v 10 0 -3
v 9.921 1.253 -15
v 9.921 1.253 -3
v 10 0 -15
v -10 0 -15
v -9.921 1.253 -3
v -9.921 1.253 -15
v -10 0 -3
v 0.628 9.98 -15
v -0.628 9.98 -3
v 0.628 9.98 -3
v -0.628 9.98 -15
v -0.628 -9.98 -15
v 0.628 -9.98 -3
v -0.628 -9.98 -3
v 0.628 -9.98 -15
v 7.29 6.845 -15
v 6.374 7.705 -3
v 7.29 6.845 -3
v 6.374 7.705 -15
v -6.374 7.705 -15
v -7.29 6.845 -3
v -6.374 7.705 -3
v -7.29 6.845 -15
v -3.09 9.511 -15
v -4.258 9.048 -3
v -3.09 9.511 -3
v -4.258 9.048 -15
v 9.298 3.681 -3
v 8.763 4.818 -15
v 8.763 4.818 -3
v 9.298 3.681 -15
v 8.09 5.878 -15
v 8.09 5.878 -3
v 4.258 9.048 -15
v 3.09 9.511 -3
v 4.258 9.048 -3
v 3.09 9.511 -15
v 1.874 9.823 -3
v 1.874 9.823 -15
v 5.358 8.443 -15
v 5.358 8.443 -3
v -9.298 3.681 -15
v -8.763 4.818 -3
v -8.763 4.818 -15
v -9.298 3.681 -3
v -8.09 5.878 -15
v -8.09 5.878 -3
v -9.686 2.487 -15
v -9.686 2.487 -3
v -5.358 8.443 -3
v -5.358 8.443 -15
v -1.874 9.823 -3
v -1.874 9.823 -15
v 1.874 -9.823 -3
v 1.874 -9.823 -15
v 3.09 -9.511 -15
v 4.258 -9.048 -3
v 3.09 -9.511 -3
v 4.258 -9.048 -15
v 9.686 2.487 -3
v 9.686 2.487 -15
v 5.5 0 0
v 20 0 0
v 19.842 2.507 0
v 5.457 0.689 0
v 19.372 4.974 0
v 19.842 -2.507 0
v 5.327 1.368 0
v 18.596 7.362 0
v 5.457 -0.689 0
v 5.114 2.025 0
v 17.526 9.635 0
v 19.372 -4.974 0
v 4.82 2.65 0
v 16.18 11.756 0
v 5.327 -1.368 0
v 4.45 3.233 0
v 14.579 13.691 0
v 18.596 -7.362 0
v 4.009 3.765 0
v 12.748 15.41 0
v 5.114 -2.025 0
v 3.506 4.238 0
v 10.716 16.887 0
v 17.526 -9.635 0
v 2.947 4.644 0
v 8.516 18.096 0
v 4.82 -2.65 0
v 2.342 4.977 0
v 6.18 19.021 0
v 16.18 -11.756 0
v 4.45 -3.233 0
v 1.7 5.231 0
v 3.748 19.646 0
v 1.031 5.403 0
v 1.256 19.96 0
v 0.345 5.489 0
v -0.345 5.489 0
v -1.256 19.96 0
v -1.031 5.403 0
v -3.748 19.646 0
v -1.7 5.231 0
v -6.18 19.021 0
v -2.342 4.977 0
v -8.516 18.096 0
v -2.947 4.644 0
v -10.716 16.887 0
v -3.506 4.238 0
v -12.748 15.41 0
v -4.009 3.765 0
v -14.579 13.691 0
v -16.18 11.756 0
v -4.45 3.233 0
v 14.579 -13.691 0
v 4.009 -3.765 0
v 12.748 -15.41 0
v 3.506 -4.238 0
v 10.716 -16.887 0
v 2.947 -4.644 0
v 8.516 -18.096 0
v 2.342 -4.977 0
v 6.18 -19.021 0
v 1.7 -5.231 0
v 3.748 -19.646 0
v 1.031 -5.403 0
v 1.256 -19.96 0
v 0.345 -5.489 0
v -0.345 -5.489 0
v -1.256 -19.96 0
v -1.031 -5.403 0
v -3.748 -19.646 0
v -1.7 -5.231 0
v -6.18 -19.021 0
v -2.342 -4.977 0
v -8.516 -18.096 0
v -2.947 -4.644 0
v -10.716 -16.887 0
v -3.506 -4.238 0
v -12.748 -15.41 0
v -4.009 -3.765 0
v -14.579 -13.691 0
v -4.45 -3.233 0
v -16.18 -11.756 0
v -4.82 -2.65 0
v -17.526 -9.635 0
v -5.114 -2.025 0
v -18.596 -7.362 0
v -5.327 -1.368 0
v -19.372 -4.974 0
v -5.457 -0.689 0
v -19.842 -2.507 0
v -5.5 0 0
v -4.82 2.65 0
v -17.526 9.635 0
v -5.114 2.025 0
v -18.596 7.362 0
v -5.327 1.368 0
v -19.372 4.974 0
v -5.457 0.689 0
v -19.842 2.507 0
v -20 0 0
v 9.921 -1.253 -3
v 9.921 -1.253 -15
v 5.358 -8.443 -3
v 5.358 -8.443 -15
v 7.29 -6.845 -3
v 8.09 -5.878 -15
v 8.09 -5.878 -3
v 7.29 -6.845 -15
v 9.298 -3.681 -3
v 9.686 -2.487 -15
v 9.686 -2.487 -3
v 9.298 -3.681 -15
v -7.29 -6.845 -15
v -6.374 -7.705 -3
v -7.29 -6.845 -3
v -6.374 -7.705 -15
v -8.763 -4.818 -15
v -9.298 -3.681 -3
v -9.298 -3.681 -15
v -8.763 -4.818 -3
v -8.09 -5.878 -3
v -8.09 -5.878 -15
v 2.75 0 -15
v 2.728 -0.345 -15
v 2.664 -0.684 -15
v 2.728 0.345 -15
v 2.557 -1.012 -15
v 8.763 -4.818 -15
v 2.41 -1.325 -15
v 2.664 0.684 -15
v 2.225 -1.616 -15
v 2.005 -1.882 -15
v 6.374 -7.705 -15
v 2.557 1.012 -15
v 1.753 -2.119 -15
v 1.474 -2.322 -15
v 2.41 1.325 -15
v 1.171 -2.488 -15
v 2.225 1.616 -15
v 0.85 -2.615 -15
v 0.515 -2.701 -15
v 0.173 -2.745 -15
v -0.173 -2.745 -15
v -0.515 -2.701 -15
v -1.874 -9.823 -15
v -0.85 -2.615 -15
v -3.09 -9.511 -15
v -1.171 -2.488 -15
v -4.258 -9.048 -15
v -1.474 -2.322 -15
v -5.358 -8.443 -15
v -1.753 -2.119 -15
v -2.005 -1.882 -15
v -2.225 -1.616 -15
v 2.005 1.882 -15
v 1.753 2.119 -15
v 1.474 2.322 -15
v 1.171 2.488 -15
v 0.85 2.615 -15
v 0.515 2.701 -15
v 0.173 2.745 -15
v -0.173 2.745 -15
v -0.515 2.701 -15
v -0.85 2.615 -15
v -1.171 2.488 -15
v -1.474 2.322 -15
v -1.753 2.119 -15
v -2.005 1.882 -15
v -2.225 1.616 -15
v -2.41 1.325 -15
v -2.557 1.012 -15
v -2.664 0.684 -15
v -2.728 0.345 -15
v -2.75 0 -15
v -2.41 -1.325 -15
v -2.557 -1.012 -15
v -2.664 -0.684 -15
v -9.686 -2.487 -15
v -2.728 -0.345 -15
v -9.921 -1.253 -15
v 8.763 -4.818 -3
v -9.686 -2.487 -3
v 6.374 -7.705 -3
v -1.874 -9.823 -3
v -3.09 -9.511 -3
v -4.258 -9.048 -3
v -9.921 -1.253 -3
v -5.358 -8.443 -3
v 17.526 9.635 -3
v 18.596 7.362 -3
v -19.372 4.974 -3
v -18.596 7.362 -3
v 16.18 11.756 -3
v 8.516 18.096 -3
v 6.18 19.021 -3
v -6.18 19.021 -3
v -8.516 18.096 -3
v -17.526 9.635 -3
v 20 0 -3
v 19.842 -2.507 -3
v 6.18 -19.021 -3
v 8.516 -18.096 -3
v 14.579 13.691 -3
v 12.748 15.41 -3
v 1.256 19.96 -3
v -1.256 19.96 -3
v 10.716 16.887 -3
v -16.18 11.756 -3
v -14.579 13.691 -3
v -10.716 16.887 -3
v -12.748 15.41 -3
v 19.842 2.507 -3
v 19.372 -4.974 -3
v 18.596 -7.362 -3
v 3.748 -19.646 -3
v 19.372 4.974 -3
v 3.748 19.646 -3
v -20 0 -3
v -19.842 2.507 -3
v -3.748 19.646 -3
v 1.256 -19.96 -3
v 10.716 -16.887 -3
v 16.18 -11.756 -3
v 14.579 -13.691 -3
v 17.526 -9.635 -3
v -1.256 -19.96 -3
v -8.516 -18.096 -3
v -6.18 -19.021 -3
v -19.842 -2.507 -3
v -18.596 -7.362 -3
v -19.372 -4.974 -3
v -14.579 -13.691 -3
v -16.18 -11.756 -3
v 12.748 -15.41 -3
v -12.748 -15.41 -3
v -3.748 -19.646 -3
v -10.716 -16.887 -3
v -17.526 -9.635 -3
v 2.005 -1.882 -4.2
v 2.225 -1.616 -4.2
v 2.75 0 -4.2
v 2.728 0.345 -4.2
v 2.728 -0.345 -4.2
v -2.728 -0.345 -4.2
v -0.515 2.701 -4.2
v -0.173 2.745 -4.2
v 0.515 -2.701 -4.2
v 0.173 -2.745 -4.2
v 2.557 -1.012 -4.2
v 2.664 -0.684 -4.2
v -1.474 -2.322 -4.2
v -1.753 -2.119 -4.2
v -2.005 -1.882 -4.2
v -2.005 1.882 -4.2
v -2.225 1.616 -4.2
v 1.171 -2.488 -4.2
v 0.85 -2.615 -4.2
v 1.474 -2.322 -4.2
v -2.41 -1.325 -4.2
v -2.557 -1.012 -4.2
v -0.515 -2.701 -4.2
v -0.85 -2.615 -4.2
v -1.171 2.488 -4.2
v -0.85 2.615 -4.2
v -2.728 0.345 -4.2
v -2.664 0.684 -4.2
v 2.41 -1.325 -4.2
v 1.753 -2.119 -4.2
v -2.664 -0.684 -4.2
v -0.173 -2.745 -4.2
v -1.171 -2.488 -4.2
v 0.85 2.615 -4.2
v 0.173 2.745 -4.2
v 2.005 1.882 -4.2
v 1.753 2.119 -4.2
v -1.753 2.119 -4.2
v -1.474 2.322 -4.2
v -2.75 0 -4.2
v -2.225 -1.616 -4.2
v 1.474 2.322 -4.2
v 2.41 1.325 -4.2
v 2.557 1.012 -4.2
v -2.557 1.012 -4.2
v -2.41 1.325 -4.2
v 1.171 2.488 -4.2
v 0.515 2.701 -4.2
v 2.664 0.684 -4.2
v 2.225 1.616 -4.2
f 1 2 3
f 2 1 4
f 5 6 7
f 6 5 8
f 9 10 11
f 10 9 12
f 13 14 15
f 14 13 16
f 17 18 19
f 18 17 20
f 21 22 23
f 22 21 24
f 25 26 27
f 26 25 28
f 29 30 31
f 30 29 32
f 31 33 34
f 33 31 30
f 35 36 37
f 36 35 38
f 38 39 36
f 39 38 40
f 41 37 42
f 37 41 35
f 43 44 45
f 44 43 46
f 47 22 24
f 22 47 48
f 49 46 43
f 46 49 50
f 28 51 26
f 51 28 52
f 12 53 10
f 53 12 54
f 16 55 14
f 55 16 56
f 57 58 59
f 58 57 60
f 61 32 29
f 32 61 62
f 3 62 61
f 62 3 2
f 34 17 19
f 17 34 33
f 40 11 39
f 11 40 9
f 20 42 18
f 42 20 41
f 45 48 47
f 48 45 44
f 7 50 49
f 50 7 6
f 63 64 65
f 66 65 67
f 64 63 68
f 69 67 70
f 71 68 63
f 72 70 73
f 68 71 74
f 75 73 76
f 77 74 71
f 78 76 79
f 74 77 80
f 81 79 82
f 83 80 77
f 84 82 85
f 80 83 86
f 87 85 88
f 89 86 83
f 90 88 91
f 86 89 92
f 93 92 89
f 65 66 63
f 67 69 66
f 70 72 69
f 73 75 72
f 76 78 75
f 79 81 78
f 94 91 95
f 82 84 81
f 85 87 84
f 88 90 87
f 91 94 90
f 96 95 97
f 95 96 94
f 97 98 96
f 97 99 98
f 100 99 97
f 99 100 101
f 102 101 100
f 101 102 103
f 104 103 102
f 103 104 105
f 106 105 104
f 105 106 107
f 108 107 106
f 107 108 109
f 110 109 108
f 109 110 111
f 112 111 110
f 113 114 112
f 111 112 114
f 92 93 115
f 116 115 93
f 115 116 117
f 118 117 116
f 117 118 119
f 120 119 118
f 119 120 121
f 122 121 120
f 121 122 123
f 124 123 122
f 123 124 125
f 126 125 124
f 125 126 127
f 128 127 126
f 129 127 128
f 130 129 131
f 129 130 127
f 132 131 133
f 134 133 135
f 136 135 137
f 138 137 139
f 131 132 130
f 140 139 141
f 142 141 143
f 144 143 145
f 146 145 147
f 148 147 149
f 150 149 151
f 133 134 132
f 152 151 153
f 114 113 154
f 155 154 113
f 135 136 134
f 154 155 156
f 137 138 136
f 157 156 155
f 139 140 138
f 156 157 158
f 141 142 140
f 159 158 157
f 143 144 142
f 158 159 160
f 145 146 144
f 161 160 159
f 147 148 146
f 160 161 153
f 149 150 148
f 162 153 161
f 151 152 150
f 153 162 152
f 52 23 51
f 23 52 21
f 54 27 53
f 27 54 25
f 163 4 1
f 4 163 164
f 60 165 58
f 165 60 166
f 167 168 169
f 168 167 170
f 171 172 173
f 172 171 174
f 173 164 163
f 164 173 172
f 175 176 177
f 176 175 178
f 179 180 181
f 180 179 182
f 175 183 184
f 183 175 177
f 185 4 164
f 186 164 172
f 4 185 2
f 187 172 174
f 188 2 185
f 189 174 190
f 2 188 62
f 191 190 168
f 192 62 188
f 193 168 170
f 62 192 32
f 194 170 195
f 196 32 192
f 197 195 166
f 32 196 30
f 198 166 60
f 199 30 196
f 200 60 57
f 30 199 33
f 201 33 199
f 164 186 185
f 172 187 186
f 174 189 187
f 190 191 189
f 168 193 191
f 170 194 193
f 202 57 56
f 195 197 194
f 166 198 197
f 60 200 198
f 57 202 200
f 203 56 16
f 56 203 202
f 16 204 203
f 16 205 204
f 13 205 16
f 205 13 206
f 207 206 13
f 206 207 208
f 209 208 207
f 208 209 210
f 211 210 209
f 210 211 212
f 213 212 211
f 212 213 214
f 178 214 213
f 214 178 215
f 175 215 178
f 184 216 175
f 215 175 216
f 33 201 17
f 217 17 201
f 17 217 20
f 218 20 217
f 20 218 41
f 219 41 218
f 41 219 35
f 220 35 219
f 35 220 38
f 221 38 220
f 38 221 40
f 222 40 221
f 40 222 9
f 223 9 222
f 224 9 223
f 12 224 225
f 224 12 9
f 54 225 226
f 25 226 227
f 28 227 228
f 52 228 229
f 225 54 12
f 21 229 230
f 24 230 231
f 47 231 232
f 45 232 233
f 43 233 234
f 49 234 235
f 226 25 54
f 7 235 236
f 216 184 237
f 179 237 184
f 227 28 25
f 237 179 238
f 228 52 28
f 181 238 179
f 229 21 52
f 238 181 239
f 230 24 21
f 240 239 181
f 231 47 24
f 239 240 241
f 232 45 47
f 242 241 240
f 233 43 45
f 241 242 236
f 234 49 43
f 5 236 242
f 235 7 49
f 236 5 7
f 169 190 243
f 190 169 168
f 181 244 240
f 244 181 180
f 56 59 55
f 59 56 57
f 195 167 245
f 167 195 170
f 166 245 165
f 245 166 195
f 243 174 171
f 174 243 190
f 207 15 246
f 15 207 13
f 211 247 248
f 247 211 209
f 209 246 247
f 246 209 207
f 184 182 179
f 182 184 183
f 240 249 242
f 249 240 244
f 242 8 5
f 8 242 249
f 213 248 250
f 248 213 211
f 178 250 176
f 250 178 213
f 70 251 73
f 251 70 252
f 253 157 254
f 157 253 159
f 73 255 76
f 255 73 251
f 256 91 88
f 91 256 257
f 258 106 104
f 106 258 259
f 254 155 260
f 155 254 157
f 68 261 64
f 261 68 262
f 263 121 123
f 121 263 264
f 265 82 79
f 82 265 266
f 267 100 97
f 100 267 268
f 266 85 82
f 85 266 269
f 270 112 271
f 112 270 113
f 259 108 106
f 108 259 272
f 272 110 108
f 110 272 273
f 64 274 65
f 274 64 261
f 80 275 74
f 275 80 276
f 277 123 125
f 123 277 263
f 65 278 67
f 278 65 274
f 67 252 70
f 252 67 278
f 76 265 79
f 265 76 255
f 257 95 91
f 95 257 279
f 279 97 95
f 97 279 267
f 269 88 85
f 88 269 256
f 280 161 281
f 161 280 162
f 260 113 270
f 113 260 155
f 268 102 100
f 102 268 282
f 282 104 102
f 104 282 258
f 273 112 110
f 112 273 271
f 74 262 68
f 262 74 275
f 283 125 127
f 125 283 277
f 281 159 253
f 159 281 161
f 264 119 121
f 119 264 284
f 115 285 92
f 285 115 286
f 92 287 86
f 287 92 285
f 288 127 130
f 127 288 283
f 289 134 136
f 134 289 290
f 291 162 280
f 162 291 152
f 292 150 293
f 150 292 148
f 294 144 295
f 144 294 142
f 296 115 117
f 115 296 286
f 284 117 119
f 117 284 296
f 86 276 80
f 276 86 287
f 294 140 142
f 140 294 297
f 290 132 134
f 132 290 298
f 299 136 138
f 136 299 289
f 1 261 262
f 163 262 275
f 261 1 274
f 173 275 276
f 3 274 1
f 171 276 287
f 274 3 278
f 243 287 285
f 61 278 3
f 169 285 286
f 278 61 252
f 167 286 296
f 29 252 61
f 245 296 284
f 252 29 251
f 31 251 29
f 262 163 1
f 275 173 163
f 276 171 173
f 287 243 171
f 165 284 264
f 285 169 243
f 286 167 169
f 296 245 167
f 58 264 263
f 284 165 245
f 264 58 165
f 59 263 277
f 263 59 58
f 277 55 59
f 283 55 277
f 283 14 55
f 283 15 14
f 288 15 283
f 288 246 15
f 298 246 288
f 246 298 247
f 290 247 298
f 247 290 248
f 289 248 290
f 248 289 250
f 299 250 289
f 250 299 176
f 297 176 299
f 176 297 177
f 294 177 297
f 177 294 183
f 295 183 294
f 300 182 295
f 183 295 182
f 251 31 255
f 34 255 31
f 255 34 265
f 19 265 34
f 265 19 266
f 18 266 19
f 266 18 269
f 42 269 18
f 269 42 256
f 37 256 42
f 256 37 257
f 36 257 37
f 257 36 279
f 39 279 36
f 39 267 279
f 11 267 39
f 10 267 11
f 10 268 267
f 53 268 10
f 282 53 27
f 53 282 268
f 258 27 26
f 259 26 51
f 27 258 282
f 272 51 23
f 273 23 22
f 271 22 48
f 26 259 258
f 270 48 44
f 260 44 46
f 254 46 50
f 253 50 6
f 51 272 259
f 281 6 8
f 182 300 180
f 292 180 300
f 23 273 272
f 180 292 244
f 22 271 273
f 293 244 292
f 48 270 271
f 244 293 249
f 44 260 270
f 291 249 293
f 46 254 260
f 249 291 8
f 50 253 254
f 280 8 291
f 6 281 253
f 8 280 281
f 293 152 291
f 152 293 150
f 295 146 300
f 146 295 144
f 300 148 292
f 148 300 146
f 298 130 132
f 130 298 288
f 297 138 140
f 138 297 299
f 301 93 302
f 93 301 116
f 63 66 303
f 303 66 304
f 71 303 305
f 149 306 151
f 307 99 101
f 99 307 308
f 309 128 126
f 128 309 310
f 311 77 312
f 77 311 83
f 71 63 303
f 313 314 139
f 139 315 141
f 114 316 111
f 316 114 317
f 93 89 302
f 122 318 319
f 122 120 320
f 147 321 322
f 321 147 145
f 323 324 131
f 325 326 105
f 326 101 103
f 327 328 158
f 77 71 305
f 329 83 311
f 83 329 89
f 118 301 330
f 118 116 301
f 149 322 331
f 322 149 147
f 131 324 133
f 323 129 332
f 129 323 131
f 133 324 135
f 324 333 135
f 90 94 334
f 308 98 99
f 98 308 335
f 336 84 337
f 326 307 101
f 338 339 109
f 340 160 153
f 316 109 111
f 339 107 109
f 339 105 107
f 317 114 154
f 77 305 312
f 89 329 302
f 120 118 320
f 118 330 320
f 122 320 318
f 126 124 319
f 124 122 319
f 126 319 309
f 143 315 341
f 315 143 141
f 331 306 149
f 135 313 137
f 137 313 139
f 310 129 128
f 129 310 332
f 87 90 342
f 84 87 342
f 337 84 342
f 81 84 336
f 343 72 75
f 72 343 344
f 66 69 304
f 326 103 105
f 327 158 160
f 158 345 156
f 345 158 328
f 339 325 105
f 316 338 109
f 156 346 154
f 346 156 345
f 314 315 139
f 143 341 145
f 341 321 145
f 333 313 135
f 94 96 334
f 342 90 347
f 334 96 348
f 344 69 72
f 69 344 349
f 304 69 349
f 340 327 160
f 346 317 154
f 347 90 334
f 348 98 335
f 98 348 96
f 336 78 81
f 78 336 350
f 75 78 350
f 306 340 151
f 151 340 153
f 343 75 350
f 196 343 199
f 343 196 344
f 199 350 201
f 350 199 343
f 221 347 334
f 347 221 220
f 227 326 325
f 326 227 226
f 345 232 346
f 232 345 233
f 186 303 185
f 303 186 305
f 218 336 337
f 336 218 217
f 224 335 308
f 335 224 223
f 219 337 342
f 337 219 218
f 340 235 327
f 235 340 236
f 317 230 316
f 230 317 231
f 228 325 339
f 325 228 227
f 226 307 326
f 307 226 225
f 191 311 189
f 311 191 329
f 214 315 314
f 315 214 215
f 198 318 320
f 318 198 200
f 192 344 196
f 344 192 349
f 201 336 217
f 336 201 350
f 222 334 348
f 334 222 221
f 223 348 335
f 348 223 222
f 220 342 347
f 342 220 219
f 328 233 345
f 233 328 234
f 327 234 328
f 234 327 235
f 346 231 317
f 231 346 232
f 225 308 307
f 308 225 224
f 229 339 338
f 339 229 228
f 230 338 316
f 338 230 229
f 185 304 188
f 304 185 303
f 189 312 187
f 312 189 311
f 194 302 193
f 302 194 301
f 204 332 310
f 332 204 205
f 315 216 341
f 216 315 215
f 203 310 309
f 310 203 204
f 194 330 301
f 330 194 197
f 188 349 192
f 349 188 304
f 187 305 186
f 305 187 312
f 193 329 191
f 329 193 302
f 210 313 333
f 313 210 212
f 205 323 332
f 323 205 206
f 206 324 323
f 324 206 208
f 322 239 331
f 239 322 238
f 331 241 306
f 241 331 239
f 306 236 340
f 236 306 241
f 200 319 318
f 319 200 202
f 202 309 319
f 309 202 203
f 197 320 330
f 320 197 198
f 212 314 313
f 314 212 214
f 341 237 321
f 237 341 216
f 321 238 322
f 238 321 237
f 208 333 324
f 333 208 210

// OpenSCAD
$fn = 50;


difference() {
	union() {
		translate(v = [0, 0, -15.0000000000]) {
			cylinder(h = 15, r = 10.0000000000);
		}
		translate(v = [0, 0, -3.0000000000]) {
			cylinder(h = 3, r = 20.0000000000);
		}
	}
	union() {
		translate(v = [0, 0, 0]) {
			rotate(a = [0, 0, 0]) {
				difference() {
					union() {
						#translate(v = [0, 0, -15.0000000000]) {
							cylinder(h = 15, r = 2.2500000000);
						}
						#translate(v = [0, 0, -4.2000000000]) {
							cylinder(h = 4.2000000000, r1 = 2.7500000000, r2 = 5.5000000000);
						}
						#translate(v = [0, 0, -15.0000000000]) {
							cylinder(h = 15, r = 2.7500000000);
						}
						#translate(v = [0, 0, -15.0000000000]) {
							cylinder(h = 15, r = 2.2500000000);
						}
					}
					union();
				}
			}
		}
	}
}
